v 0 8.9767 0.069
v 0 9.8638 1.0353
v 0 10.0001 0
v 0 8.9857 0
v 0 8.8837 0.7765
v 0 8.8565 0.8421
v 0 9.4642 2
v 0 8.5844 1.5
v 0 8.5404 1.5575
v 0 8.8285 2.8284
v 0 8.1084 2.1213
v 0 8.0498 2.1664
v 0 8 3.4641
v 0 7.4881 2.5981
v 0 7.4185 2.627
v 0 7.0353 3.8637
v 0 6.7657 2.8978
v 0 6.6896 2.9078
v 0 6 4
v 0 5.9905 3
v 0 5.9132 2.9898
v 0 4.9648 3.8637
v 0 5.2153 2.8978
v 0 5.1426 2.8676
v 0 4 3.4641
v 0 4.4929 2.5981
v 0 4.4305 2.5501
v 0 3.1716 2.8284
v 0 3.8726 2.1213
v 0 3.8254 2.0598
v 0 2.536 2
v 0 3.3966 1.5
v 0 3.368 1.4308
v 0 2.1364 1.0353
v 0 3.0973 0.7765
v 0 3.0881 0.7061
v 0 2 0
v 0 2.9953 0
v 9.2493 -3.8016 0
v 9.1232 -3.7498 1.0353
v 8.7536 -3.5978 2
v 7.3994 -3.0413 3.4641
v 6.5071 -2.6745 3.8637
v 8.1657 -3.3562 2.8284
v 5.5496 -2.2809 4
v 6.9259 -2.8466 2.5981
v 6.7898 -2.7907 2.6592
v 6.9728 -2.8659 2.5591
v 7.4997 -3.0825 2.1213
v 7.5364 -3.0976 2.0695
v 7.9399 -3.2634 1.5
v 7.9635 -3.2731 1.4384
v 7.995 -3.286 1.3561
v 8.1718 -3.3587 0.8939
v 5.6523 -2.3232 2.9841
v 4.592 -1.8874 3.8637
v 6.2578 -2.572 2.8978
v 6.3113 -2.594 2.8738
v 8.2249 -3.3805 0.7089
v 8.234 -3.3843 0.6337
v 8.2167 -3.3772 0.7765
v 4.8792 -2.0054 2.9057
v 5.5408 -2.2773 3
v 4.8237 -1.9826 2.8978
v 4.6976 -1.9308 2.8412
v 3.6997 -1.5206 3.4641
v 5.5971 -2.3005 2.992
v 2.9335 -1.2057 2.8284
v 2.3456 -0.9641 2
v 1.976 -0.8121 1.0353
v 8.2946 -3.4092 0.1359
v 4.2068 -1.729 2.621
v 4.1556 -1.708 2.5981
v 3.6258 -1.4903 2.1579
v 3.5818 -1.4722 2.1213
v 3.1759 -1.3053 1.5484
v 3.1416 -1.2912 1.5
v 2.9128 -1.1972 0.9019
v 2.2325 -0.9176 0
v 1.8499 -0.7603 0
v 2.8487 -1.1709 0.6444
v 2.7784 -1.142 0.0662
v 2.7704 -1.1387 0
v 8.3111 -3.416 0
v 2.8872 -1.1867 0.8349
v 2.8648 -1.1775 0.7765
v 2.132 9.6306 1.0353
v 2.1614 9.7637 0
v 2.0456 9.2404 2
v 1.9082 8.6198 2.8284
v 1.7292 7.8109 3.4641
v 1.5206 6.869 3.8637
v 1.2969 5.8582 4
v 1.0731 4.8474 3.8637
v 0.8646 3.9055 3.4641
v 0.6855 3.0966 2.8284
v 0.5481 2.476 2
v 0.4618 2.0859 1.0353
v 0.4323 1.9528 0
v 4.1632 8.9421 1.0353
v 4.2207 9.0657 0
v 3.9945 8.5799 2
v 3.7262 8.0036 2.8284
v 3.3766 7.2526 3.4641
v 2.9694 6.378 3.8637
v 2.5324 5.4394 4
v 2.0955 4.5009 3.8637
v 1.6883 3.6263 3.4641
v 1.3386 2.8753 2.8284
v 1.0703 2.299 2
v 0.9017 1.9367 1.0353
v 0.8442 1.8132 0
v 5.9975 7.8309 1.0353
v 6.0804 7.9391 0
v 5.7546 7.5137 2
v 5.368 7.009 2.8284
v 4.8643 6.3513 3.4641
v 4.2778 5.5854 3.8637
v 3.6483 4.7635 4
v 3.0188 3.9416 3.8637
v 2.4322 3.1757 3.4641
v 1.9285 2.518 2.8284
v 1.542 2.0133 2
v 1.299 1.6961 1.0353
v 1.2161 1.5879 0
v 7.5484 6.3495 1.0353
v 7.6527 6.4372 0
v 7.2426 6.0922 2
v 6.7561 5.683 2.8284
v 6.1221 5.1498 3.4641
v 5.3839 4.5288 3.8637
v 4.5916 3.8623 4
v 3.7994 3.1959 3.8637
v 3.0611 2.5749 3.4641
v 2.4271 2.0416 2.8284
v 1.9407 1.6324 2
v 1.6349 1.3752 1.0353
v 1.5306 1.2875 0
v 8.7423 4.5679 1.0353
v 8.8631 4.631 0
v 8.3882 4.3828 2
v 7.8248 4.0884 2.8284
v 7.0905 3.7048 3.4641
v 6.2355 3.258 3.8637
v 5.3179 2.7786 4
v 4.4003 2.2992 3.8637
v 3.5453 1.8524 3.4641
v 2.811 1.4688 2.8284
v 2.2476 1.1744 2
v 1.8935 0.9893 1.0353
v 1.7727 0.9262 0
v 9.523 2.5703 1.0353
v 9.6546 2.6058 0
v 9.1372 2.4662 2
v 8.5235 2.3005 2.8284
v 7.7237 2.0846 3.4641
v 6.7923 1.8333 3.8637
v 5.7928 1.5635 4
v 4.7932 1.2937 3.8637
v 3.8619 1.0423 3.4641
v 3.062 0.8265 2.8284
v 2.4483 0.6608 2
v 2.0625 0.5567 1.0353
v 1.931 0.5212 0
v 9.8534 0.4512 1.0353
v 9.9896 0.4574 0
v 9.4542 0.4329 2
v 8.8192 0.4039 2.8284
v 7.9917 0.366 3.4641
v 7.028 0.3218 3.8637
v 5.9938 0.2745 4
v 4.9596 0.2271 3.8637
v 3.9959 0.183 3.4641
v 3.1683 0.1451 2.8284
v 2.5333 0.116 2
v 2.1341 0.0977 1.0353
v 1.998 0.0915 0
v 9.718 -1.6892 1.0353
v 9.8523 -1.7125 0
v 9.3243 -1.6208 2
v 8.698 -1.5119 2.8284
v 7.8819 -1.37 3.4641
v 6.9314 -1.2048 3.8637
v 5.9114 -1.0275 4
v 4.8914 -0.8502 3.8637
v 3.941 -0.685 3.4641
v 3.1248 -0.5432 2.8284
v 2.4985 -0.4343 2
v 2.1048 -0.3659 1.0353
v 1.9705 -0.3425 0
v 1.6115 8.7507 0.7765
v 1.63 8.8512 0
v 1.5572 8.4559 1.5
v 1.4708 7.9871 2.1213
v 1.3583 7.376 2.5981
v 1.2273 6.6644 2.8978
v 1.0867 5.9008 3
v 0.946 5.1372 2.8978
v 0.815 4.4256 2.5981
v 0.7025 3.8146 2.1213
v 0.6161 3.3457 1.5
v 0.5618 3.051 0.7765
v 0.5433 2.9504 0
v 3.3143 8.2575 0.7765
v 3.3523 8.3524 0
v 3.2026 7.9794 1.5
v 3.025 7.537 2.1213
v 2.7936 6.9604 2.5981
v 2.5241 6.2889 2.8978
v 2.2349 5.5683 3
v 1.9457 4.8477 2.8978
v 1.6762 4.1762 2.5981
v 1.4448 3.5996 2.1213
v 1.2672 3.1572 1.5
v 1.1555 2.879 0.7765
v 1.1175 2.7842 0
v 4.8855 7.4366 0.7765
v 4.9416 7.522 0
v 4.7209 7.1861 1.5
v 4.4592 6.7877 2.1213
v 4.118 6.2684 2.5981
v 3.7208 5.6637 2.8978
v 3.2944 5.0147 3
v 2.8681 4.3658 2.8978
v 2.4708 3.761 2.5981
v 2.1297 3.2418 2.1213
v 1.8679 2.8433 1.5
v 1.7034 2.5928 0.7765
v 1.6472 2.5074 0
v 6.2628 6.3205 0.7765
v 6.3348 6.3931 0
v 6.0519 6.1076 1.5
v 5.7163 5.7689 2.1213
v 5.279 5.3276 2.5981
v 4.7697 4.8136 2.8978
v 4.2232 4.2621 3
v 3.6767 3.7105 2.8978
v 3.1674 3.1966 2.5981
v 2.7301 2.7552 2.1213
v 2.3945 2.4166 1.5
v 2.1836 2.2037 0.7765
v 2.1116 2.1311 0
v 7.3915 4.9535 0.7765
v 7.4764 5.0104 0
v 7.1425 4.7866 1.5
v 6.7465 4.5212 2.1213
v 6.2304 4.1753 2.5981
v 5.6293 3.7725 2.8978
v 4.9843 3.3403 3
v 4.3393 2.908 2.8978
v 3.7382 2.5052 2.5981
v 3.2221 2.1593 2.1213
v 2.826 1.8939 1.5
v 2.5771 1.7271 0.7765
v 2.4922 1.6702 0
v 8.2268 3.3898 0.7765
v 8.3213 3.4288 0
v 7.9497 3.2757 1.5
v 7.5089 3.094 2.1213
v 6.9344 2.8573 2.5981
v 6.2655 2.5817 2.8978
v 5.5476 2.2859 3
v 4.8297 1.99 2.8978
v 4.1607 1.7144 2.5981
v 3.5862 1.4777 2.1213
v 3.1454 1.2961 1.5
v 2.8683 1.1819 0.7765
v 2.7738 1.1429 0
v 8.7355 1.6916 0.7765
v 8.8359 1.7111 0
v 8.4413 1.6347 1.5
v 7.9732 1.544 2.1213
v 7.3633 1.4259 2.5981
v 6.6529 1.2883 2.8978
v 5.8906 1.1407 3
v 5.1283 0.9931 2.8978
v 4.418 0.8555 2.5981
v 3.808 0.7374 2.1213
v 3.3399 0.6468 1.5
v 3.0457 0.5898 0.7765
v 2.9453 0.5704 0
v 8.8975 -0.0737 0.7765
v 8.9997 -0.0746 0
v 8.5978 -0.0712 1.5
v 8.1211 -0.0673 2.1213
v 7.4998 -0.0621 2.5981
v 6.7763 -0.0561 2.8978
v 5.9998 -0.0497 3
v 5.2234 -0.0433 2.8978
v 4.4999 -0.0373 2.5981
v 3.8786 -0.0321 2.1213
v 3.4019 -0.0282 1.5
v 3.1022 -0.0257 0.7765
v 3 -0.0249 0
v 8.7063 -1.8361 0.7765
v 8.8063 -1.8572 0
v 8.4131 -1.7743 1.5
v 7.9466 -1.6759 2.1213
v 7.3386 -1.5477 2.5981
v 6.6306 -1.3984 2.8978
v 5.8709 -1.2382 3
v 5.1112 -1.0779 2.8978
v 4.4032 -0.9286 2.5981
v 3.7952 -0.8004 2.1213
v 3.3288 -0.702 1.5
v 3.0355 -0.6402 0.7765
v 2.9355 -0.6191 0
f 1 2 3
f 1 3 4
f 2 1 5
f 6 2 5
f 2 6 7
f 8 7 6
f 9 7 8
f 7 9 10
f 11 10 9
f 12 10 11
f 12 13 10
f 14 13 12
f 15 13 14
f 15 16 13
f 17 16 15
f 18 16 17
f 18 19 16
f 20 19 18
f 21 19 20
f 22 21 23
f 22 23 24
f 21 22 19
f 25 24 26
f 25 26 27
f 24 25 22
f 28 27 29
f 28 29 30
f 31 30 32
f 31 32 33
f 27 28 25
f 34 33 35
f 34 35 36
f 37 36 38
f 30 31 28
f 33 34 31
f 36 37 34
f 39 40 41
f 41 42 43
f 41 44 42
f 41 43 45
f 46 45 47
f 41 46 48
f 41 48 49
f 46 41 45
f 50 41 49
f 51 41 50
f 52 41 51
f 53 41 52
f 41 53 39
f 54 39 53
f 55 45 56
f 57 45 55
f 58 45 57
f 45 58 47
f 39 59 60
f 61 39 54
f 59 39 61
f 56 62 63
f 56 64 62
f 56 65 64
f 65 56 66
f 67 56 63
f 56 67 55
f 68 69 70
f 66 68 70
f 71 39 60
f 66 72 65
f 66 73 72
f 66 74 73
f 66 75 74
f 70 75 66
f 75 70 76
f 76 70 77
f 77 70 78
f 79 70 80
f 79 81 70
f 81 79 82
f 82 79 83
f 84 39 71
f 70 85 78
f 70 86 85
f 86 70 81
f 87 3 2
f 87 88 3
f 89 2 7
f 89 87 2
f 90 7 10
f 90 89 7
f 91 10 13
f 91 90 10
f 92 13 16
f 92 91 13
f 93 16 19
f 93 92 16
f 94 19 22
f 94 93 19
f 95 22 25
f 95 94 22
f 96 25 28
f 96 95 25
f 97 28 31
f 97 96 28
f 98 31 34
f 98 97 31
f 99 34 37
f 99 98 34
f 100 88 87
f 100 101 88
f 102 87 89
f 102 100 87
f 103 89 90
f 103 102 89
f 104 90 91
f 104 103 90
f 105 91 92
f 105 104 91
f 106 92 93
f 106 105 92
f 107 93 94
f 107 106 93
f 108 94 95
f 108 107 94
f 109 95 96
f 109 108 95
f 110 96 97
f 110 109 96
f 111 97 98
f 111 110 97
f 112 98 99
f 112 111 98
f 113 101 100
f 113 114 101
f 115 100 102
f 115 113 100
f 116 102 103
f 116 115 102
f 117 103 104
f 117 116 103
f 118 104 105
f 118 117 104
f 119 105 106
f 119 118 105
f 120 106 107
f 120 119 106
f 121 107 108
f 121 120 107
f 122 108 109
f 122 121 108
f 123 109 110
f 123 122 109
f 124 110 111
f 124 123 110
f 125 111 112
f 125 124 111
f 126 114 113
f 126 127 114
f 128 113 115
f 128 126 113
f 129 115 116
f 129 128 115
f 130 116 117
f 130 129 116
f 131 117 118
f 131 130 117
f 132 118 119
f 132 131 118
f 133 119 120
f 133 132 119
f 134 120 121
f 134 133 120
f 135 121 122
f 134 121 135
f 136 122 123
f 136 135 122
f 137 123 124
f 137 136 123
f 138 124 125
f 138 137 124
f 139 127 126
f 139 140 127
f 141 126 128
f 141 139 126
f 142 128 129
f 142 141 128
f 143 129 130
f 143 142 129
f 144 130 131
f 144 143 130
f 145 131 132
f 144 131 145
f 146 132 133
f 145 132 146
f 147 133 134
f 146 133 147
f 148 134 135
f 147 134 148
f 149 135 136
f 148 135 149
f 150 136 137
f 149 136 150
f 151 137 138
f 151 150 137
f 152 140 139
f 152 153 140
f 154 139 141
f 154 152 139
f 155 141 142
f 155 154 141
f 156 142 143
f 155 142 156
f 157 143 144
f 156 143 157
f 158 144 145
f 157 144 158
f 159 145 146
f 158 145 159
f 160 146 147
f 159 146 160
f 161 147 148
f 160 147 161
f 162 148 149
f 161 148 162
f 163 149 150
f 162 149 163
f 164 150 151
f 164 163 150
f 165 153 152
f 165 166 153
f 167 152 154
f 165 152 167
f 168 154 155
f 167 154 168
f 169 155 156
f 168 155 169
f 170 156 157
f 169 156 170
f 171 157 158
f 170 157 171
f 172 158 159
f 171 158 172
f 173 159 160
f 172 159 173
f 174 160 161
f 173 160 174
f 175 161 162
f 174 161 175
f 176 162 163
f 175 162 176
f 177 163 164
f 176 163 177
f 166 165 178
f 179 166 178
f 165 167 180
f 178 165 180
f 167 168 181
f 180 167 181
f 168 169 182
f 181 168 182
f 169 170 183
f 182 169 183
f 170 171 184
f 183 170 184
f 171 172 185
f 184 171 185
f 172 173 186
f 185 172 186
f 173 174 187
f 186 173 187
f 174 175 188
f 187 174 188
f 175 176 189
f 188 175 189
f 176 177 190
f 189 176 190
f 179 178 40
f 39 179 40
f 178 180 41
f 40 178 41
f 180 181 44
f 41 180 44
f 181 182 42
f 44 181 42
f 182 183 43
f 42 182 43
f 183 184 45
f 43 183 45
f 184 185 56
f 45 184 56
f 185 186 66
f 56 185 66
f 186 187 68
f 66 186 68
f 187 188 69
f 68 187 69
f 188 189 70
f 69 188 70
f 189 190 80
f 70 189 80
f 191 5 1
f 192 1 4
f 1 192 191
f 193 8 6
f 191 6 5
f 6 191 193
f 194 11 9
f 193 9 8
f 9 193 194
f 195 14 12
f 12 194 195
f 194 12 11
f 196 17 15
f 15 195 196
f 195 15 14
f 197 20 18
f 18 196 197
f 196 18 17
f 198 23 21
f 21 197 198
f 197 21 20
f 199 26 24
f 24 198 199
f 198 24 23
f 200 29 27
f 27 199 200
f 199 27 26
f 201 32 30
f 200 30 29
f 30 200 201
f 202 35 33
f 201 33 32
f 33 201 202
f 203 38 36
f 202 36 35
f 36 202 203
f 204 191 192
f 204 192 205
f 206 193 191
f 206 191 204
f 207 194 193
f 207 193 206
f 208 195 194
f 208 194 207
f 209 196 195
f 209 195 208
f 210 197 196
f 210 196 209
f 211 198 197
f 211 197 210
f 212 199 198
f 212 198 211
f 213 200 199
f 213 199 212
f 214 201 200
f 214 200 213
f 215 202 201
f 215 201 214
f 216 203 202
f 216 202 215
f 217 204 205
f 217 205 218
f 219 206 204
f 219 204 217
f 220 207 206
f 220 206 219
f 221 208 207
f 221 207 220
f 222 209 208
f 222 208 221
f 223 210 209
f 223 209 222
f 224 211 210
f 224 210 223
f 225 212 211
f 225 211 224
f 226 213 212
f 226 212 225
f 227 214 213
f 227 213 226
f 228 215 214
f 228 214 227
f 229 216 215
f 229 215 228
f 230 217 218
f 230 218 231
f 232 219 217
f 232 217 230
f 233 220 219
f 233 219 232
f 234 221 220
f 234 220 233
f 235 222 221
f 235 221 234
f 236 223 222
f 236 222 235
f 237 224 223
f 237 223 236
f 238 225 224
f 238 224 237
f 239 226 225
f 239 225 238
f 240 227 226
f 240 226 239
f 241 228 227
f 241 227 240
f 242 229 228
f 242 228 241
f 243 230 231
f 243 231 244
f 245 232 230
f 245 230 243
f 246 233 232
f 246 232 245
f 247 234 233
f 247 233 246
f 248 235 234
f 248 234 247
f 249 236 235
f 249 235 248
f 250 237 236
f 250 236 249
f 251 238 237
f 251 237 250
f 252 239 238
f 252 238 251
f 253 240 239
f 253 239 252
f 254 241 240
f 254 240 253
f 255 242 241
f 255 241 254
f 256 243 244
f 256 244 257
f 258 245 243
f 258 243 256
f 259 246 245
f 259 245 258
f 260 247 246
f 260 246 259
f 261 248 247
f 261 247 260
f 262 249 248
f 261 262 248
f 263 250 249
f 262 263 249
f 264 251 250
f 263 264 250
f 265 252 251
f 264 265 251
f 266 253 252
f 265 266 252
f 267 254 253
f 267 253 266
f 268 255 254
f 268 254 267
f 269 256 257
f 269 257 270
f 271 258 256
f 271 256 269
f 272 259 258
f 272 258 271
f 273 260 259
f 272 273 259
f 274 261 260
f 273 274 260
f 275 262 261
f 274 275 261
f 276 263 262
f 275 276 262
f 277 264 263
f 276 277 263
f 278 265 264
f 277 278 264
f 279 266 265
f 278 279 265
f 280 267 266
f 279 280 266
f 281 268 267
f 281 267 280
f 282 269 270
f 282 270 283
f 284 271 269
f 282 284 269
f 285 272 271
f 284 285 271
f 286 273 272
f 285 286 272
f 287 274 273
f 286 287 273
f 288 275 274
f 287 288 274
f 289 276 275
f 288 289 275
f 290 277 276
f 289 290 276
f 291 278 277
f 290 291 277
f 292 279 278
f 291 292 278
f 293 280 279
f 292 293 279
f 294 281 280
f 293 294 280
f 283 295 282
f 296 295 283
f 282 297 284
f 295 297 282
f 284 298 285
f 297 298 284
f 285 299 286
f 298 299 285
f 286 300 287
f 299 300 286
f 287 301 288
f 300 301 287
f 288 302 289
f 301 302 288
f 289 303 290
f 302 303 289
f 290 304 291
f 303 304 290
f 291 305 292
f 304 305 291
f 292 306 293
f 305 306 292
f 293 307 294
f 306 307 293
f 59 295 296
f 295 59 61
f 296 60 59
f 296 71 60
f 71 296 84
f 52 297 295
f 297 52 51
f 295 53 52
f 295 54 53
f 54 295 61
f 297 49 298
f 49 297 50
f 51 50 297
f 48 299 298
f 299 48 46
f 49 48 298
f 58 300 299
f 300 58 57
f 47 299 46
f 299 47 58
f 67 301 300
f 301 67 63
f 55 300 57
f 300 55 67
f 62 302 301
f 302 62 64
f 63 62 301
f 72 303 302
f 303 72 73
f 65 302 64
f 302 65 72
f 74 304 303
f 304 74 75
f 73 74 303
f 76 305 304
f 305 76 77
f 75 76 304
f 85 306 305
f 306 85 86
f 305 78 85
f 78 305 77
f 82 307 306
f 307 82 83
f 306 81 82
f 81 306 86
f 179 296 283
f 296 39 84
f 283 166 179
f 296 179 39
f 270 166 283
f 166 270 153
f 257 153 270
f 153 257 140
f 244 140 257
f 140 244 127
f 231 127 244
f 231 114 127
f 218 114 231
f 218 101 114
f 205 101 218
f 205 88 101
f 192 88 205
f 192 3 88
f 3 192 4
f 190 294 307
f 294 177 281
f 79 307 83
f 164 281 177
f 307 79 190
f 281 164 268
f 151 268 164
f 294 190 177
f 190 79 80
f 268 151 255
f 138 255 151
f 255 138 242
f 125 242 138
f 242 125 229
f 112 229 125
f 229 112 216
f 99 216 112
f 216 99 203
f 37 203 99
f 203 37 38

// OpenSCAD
// file: ../build_environments.scad
// build_environments.scad: modules to build level sections
//

module pool(diameter=10.0, wall_height=2.0, step_width=3.0, connections=[])
{
    difference() {
        union() {
        difference() {
            cylinder(h=0.5,r1=diameter+step_width,r2=diameter+step_width,$fn=48);
            translate([0,0,-0.1])
                cylinder(h=0.7,r1=diameter,r2=diameter,$fn=48);
        }
        difference() {
            cylinder(h=wall_height,r1=diameter+step_width+1.0,r2=diameter+step_width+1.0,$fn=48);
            translate([0,0,-0.1])
                cylinder(h=wall_height+0.2,r1=diameter+step_width,r2=diameter+step_width,$fn=48);
        }
        }
    
        for (c = connections)
        {
            rotate([0,90,0]) {
                angle = atan2(c[1],c[0]);
                rotate([-angle,0,0]) {
                    cylinder(h=diameter+5.0,r1=c[2],r2=c[2],$fn=48);
                }
            }
        }
    }
}

module straight(length=10.0, width=2.0, dy1=0.0, dy2=0.0, dz=0.0)
{
    dims = [0, 0, 0, 0, 0, (dz/length)];
    matrix = [
        [ 1, dims[0], dims[1], 0 ],
        [ dims[2], 1, dims[4], 0 ],
        [ dims[5], dims[3], 1, 0 ],
        [ 0, 0, 0, 1 ]
    ];
    multmatrix(matrix)
    difference() {
        translate([dy1,0,0])
        union() {
            rotate([0,90,0]) {
                difference() {
                    cylinder(h=(length-dy1-dy2),r1=width+1.0,r2=width+1.0,$fn=24);
                    translate([0,0,-0.1])
                        cylinder(h=(length-dy1-dy2+0.2),r1=width,r2=width,$fn=24);
                }
                difference() {
                    cylinder(h=1.0,r1=width+2.0,r2=width+2.0,$fn=24);
                    translate([0,0,-0.1])
                        cylinder(h=1.2,r1=width,r2=width,$fn=24);
                }
                translate([0,0,(length-dy1-dy2)-1.0]) {
                    difference() {
                        cylinder(h=1.0,r1=width+2.0,r2=width+2.0,$fn=24);
                        translate([0,0,-0.1])
                            cylinder(h=1.2,r1=width,r2=width,$fn=24);
                    }
                }
            }
        }
        translate([0,0,-(2*width+4.0)/2])
            cube([3*length,3*length,2*width+4.0],center=true);
    }
}

module curve(p0=[0,0], center=[0,0], dir=1, angle=0.0, width=2.0)
{
    radius = sqrt((p0[0]-center[0])*(p0[0]-center[0]) + (p0[1]-center[1])*(p0[1]-center[1]));
    if (dir == 0) {
        difference() {
            rotate([0,0,-90])
            difference() {
                rotate_extrude(angle = angle, convexity = 10, $fn=32)
                    translate([radius, 0, 0])
                        circle(r = width+1.0,$fn=24);
                rotate([0,0,-1.0])
                    rotate_extrude(angle = angle+2.0, convexity = 10, $fn=32)
                        translate([radius, 0, 0])
                            circle(r = width,$fn=24);
            }
            translate([0,0,-(2*width+4.0)/2])
                cube([5*radius,5*radius,2*width+4.0],center=true);
        }
    }
    else {
        difference() {
            rotate([0,0,90])
            difference() {
                rotate_extrude(angle = -angle, convexity = 10, $fn=32)
                    translate([radius, 0, 0])
                        circle(r = width+1.0,$fn=24);
                rotate([0,0,1.0])
                    rotate_extrude(angle = -angle-2.0, convexity = 10, $fn=32)
                        translate([radius, 0, 0])
                            circle(r = width,$fn=24);
            }
            translate([0,0,-(2*width+4.0)/2])
                cube([5*radius,5*radius,2*width+4.0],center=true);
        }
    }

}

// test pool
//pool(diameter=12.0000, wall_height=3.0000, step_width=3.0000, connections=[[0.0000,-26.0000,2.0000], [23.6074,0.0000,2.0000]]);

// test straight, slope
//straight(length=26.0000, width=2.0000, dy1=11.8322, dy2=6.7082, dz=0.0000);
//straight(length=29.1549, width=12.0000, dy1=0.0000, dy2=0.0000, dz=-15.0000);

// test curve
//curve(p0=[23.6074, 0.0000], center=[23.6074, 5.0000], dir=0, angle=60.1011, width=2.0000);
//curve(p0=[33.6426, 12.4219], center=[37.9771, 9.9295], dir=1, angle=120.4627, width=2.0000);
// main file
use <../build_environments.scad>;
curve(p0=[-0.5516, 29.4886], center=[5.4474, 29.6009], dir=1, angle=112.3433, width=3.0000);
